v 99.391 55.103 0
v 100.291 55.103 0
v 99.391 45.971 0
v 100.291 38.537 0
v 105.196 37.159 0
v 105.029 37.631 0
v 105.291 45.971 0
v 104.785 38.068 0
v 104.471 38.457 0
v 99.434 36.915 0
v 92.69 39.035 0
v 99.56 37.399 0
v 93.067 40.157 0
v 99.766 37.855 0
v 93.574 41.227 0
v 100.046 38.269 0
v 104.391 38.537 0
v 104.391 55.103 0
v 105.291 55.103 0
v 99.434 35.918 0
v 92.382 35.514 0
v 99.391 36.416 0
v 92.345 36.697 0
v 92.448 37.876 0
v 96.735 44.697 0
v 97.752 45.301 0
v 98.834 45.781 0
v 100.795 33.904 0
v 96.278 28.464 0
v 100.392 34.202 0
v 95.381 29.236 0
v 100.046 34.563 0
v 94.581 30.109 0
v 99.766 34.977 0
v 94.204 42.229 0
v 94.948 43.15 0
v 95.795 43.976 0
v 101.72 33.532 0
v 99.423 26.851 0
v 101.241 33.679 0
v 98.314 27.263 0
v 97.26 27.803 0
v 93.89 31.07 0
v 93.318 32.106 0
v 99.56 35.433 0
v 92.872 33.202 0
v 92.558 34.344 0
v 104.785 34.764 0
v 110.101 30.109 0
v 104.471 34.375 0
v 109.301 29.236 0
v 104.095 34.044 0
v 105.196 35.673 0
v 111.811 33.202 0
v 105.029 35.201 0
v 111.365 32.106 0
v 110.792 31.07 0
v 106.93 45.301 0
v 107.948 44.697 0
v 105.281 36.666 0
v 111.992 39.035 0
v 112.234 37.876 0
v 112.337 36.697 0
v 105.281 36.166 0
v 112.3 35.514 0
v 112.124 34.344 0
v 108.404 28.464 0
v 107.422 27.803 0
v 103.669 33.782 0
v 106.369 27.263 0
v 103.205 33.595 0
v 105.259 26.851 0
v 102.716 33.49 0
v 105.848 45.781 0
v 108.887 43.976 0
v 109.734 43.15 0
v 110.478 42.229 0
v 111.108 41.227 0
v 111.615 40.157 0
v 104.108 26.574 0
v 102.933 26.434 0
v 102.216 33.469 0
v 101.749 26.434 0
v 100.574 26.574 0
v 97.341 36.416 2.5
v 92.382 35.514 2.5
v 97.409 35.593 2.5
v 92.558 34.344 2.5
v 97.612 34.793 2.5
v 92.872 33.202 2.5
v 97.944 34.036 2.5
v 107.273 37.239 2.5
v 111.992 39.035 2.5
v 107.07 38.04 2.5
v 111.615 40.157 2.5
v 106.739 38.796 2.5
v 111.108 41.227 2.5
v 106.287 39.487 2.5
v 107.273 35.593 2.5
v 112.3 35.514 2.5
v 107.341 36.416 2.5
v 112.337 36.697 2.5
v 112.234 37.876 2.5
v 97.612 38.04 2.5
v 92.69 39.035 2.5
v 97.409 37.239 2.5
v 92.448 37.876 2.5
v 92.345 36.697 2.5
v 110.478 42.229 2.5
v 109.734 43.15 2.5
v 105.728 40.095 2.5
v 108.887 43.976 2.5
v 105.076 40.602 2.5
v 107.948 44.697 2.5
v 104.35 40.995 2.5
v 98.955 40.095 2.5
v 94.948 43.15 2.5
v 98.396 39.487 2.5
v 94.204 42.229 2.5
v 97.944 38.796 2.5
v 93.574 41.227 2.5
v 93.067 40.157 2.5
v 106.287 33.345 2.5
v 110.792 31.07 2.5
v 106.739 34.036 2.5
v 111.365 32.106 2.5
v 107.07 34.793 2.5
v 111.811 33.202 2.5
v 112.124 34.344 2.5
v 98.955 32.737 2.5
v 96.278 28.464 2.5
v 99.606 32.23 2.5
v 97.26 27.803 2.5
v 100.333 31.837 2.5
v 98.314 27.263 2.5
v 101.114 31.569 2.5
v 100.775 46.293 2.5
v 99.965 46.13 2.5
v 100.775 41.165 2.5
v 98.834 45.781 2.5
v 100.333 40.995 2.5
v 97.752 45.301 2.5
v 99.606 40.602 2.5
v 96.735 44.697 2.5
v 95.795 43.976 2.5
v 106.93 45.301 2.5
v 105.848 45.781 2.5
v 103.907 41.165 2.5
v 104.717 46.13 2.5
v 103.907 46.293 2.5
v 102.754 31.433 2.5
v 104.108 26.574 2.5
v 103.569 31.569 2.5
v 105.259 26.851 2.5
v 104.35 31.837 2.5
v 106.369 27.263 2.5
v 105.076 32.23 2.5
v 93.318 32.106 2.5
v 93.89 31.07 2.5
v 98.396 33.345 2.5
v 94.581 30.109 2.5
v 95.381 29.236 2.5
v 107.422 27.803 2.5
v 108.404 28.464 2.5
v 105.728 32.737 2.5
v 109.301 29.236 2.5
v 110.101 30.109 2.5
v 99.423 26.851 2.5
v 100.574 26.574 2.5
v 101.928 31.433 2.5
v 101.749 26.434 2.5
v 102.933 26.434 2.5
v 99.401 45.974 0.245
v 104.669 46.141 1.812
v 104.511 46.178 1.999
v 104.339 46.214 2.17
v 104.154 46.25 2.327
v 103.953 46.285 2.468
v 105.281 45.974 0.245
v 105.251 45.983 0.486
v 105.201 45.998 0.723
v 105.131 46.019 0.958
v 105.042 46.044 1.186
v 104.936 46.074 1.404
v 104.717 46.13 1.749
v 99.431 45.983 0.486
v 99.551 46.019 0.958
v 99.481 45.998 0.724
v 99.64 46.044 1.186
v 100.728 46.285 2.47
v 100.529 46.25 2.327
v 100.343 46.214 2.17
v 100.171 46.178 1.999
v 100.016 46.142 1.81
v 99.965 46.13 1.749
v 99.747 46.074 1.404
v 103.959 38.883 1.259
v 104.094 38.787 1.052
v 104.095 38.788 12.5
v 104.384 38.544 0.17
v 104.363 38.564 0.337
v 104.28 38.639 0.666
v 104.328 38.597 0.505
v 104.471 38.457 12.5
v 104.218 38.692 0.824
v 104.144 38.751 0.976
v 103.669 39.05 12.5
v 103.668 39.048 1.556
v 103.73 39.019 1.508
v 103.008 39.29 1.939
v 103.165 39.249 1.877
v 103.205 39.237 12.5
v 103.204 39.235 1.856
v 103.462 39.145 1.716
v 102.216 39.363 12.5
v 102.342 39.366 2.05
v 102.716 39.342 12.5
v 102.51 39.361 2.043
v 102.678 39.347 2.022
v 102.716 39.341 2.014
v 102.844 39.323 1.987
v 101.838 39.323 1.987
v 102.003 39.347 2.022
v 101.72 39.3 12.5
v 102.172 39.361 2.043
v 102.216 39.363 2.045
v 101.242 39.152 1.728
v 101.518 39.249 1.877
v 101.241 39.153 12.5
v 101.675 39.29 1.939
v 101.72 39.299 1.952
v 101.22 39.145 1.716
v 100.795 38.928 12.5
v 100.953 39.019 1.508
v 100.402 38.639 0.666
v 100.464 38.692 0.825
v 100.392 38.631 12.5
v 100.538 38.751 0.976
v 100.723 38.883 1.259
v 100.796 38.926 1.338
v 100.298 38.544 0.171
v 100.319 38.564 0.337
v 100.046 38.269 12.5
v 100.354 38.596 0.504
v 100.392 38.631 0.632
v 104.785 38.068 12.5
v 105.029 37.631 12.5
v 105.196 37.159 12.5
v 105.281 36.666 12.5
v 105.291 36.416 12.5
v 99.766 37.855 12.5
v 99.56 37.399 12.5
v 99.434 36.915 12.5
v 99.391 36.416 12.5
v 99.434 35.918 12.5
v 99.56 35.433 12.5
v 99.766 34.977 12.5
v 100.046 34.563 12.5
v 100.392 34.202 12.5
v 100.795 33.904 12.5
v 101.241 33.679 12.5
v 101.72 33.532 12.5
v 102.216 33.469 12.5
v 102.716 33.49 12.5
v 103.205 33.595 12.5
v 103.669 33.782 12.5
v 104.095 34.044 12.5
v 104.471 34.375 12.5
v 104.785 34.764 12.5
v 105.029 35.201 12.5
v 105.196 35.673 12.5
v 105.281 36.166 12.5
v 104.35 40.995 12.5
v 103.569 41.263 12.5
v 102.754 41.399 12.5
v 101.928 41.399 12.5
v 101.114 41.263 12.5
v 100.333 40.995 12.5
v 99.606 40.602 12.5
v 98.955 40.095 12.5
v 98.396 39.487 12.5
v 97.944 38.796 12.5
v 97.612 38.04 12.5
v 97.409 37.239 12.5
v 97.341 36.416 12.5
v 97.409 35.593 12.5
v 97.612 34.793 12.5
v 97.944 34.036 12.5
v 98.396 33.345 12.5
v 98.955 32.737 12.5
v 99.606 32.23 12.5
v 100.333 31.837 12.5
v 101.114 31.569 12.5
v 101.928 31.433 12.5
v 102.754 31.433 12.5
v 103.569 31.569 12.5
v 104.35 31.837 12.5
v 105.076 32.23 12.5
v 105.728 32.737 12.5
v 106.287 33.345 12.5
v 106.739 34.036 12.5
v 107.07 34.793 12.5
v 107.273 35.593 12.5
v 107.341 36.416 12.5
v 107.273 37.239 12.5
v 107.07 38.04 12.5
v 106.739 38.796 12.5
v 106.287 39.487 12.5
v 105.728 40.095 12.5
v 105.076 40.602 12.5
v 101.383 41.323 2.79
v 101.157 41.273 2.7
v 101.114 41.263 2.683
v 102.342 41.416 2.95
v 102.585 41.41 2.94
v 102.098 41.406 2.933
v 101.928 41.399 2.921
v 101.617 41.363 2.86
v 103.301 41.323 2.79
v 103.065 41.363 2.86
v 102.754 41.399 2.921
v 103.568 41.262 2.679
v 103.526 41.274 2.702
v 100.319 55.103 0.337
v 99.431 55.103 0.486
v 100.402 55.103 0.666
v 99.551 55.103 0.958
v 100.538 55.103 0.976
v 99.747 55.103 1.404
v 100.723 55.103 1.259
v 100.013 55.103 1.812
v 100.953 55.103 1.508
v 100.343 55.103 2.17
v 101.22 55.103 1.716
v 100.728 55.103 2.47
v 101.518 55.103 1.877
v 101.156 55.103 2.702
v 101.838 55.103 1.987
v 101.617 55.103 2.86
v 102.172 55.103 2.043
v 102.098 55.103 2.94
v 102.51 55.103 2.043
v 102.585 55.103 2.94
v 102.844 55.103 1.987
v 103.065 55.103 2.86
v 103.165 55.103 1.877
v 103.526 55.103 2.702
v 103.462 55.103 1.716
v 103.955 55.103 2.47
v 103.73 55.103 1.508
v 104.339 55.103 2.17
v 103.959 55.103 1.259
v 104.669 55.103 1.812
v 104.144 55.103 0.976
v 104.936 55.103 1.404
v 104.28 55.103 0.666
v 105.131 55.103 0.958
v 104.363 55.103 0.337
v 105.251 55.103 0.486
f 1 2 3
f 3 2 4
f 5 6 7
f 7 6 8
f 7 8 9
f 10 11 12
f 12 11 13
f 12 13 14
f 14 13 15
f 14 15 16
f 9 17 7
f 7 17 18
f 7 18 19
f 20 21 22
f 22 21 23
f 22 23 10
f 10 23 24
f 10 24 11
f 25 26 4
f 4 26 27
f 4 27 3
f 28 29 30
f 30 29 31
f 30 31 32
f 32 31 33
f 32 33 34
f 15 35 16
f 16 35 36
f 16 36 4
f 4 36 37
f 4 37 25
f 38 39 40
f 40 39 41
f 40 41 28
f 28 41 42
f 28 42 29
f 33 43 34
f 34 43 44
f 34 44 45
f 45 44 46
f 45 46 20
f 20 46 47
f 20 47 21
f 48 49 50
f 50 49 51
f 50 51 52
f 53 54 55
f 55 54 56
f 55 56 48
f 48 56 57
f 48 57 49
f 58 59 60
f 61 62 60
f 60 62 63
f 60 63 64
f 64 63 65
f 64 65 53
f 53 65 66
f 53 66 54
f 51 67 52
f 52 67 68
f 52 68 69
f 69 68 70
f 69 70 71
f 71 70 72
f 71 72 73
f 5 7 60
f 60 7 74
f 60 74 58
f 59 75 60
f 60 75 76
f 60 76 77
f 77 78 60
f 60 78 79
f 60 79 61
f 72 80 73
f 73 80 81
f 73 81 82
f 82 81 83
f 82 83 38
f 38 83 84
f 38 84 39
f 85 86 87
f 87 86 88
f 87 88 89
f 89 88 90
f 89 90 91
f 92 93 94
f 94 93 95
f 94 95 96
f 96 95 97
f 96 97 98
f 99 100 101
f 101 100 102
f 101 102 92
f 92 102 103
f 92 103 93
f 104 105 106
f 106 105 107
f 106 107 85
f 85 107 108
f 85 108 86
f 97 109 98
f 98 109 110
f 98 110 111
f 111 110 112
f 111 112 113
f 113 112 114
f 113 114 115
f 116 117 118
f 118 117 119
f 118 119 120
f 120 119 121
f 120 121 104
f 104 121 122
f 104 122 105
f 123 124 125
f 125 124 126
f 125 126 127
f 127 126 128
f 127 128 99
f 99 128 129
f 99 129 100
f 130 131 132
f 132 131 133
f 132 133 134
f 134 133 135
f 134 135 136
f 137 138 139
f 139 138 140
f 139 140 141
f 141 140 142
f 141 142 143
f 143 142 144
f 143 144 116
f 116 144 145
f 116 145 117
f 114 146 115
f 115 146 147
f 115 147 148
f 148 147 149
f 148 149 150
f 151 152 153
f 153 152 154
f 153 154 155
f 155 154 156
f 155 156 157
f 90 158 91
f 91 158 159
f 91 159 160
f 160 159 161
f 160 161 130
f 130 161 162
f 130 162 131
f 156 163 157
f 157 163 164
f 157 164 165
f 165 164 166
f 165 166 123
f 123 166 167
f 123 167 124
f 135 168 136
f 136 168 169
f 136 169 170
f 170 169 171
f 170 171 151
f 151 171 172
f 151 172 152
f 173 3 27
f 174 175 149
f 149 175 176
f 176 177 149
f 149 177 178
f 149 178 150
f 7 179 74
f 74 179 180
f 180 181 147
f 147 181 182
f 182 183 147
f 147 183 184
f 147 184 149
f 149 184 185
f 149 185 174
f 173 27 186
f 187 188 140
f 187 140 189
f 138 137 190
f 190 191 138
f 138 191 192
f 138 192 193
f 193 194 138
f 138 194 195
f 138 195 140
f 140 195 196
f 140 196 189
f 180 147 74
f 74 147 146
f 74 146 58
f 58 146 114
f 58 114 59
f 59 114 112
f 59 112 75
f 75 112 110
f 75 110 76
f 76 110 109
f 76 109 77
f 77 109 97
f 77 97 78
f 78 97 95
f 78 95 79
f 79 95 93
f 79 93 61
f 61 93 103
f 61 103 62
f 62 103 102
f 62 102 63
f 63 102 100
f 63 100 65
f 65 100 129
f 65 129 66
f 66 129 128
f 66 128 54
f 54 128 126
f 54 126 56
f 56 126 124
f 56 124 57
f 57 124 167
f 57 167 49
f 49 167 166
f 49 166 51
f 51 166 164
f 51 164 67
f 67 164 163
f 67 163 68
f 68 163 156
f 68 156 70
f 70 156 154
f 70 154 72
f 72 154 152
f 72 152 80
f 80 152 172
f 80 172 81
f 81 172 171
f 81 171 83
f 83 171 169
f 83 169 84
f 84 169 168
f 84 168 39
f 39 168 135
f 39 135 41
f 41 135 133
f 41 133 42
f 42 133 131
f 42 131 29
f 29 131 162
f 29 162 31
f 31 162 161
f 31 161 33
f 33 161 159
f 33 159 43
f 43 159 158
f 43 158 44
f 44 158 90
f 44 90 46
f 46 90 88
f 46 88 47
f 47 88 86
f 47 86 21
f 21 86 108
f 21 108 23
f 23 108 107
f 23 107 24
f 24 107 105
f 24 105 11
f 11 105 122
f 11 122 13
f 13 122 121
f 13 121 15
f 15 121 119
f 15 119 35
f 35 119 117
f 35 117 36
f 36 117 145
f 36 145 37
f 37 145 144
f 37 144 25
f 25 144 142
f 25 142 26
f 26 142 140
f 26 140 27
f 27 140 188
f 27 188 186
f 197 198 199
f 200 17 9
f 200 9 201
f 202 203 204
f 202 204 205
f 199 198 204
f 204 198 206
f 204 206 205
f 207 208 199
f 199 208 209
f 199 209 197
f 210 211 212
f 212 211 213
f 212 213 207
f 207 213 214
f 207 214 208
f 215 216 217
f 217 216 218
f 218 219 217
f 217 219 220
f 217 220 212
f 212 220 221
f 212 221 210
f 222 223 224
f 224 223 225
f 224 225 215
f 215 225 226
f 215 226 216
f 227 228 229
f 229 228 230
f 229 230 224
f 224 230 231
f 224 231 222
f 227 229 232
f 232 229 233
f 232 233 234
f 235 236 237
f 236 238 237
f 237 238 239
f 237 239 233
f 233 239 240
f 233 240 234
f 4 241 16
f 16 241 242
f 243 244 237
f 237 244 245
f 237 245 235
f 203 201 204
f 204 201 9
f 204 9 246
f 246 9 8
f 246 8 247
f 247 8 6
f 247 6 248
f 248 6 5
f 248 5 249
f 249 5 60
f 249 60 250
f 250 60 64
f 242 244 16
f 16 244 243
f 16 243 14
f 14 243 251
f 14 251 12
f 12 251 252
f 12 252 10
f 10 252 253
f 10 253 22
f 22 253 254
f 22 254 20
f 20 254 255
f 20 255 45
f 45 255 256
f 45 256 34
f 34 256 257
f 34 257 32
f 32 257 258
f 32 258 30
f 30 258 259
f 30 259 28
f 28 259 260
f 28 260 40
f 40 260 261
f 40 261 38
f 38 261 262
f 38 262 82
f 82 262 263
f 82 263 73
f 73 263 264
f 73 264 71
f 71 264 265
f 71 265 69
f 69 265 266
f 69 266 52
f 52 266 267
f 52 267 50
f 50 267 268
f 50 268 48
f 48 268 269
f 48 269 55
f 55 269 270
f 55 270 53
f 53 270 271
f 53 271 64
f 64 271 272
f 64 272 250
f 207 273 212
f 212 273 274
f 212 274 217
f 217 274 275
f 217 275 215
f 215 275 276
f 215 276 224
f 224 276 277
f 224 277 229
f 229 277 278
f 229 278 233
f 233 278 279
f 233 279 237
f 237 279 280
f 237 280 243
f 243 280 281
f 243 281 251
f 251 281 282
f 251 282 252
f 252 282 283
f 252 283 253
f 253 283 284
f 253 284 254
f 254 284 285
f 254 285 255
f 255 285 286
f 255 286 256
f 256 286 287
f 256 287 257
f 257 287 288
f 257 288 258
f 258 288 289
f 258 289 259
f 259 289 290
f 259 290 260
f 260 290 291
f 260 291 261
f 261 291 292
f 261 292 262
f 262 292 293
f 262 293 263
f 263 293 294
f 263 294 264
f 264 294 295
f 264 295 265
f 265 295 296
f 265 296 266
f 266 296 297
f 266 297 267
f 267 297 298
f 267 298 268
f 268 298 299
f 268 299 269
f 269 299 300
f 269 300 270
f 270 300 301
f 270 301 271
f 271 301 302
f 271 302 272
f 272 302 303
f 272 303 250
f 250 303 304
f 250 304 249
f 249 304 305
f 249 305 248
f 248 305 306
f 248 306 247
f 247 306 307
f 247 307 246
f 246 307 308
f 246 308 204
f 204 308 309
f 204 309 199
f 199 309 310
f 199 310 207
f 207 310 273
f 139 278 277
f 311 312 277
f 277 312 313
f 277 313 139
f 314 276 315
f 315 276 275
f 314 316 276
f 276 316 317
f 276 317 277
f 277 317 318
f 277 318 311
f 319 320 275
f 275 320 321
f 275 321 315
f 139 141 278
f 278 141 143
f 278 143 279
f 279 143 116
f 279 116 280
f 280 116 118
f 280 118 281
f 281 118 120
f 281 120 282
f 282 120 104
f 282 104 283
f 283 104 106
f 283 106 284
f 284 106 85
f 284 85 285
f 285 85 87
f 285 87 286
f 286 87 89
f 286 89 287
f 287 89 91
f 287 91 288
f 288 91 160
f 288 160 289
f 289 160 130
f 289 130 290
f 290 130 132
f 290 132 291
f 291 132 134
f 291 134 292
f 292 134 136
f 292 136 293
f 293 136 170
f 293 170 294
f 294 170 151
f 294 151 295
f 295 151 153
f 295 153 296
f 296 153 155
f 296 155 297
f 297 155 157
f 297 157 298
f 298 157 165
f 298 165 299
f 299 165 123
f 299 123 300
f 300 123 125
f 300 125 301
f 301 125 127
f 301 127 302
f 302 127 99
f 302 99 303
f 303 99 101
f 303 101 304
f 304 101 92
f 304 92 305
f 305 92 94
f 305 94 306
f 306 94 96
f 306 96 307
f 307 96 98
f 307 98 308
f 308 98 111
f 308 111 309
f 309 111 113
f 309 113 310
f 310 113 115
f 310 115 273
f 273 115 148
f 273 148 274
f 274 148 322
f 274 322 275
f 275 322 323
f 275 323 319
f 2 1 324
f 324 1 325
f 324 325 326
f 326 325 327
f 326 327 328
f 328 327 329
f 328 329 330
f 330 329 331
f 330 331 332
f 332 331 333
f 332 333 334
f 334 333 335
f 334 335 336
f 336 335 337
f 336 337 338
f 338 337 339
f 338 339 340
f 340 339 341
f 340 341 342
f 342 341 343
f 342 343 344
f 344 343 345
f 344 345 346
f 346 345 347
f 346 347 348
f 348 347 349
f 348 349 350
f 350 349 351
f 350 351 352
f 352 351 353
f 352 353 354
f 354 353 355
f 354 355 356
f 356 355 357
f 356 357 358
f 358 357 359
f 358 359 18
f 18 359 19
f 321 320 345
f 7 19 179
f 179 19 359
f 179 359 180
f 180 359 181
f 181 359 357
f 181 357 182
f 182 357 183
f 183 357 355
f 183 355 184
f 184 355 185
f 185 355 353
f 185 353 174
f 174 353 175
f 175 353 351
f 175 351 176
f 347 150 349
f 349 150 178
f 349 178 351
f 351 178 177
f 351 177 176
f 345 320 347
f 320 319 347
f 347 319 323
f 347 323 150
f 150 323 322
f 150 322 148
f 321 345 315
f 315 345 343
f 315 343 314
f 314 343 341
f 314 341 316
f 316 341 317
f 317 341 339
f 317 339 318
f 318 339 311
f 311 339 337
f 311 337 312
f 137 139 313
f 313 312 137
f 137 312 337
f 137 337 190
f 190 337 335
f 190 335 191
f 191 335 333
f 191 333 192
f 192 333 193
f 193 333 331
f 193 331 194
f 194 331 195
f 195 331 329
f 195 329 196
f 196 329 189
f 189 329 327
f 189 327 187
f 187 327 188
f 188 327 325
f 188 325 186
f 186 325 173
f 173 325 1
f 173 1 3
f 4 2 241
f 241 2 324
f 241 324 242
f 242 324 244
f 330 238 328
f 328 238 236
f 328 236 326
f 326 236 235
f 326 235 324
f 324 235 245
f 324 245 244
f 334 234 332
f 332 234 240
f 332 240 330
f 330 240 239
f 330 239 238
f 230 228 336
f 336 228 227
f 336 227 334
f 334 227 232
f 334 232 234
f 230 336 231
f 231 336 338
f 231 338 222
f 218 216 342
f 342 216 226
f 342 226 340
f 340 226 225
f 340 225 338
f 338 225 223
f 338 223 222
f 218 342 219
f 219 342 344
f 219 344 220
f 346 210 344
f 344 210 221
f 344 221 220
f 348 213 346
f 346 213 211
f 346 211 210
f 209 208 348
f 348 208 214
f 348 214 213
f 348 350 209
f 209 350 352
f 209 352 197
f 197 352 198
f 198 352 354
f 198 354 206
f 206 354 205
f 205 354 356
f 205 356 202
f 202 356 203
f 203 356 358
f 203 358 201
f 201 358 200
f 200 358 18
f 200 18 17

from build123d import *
from build123d.topology import SkipClean

# Parameters (mm, degrees)
SKETCH1_R           = 10
SKETCH1_R_2         = 2.95
BOSS_EXTRUDE1_DEPTH = 2.5
SKETCH2_R           = 5
SKETCH2_R_2         = 2.95
BOSS_EXTRUDE2_DEPTH = 10
SKETCH7_W           = 2.95
SKETCH7_H           = 18.687164731
REVOLVE7_ANGLE      = 180
SKETCH8_W           = 2.05
SKETCH8_H           = 18.687164731
SKETCH9_R           = 2.95
CUT_EXTRUDE1_DEPTH  = 5


with BuildPart() as part:
    # Sketch1 → Boss-Extrude1 (new body)
    with BuildSketch(Plane.XY):
        with Locations((102.341205301, 36.416113389)):
            Circle(SKETCH1_R)
        with Locations((102.341205301, 36.416113389)):
            Circle(SKETCH1_R_2, mode=Mode.SUBTRACT)
    extrude(amount=BOSS_EXTRUDE1_DEPTH)

    # Sketch2 → Boss-Extrude2 (add)
    with BuildSketch(Plane.XY.offset(2.5)):
        with Locations((102.341205301, 36.416113389)):
            Circle(SKETCH2_R)
        with Locations((102.341205301, 36.416113389)):
            Circle(SKETCH2_R_2, mode=Mode.SUBTRACT)
    extrude(amount=BOSS_EXTRUDE2_DEPTH)

    # Sketch7 → Revolve7 (revolve)
    with BuildSketch(Plane(origin=(0, 0, 0), x_dir=(-1, 0, 0), z_dir=(0, 0, -1))):
        with Locations((-103.816205301, 45.759695755)):
            Rectangle(SKETCH7_W, SKETCH7_H)
    revolve(axis=Axis((102.341205301, 36.416113389, 0), (0, -1, 0)), revolution_arc=REVOLVE7_ANGLE)

    # Sketch8 → Cut-Revolve2 (revolve, cut)
    with BuildSketch(Plane(origin=(0, 0, 0), x_dir=(-1, 0, 0), z_dir=(0, 0, -1))):
        with Locations((-103.366205301, 45.759695755)):
            Rectangle(SKETCH8_W, SKETCH8_H)
    revolve(axis=Axis((102.341205301, 36.416113389, 0), (0, 1, 0)), mode=Mode.SUBTRACT)

    # Sketch9 → Cut-Extrude1 (cut)
    with SkipClean():  # the faces are left unmerged after this step: merging them gives an invalid solid
        with BuildSketch(Plane(origin=(0, 0, 0), x_dir=(-1, 0, 0), z_dir=(0, 0, -1))):
            with Locations((-102.341205301, 36.416113389)):
                Circle(SKETCH9_R)
        extrude(amount=-CUT_EXTRUDE1_DEPTH, mode=Mode.SUBTRACT)


solid = part.part
